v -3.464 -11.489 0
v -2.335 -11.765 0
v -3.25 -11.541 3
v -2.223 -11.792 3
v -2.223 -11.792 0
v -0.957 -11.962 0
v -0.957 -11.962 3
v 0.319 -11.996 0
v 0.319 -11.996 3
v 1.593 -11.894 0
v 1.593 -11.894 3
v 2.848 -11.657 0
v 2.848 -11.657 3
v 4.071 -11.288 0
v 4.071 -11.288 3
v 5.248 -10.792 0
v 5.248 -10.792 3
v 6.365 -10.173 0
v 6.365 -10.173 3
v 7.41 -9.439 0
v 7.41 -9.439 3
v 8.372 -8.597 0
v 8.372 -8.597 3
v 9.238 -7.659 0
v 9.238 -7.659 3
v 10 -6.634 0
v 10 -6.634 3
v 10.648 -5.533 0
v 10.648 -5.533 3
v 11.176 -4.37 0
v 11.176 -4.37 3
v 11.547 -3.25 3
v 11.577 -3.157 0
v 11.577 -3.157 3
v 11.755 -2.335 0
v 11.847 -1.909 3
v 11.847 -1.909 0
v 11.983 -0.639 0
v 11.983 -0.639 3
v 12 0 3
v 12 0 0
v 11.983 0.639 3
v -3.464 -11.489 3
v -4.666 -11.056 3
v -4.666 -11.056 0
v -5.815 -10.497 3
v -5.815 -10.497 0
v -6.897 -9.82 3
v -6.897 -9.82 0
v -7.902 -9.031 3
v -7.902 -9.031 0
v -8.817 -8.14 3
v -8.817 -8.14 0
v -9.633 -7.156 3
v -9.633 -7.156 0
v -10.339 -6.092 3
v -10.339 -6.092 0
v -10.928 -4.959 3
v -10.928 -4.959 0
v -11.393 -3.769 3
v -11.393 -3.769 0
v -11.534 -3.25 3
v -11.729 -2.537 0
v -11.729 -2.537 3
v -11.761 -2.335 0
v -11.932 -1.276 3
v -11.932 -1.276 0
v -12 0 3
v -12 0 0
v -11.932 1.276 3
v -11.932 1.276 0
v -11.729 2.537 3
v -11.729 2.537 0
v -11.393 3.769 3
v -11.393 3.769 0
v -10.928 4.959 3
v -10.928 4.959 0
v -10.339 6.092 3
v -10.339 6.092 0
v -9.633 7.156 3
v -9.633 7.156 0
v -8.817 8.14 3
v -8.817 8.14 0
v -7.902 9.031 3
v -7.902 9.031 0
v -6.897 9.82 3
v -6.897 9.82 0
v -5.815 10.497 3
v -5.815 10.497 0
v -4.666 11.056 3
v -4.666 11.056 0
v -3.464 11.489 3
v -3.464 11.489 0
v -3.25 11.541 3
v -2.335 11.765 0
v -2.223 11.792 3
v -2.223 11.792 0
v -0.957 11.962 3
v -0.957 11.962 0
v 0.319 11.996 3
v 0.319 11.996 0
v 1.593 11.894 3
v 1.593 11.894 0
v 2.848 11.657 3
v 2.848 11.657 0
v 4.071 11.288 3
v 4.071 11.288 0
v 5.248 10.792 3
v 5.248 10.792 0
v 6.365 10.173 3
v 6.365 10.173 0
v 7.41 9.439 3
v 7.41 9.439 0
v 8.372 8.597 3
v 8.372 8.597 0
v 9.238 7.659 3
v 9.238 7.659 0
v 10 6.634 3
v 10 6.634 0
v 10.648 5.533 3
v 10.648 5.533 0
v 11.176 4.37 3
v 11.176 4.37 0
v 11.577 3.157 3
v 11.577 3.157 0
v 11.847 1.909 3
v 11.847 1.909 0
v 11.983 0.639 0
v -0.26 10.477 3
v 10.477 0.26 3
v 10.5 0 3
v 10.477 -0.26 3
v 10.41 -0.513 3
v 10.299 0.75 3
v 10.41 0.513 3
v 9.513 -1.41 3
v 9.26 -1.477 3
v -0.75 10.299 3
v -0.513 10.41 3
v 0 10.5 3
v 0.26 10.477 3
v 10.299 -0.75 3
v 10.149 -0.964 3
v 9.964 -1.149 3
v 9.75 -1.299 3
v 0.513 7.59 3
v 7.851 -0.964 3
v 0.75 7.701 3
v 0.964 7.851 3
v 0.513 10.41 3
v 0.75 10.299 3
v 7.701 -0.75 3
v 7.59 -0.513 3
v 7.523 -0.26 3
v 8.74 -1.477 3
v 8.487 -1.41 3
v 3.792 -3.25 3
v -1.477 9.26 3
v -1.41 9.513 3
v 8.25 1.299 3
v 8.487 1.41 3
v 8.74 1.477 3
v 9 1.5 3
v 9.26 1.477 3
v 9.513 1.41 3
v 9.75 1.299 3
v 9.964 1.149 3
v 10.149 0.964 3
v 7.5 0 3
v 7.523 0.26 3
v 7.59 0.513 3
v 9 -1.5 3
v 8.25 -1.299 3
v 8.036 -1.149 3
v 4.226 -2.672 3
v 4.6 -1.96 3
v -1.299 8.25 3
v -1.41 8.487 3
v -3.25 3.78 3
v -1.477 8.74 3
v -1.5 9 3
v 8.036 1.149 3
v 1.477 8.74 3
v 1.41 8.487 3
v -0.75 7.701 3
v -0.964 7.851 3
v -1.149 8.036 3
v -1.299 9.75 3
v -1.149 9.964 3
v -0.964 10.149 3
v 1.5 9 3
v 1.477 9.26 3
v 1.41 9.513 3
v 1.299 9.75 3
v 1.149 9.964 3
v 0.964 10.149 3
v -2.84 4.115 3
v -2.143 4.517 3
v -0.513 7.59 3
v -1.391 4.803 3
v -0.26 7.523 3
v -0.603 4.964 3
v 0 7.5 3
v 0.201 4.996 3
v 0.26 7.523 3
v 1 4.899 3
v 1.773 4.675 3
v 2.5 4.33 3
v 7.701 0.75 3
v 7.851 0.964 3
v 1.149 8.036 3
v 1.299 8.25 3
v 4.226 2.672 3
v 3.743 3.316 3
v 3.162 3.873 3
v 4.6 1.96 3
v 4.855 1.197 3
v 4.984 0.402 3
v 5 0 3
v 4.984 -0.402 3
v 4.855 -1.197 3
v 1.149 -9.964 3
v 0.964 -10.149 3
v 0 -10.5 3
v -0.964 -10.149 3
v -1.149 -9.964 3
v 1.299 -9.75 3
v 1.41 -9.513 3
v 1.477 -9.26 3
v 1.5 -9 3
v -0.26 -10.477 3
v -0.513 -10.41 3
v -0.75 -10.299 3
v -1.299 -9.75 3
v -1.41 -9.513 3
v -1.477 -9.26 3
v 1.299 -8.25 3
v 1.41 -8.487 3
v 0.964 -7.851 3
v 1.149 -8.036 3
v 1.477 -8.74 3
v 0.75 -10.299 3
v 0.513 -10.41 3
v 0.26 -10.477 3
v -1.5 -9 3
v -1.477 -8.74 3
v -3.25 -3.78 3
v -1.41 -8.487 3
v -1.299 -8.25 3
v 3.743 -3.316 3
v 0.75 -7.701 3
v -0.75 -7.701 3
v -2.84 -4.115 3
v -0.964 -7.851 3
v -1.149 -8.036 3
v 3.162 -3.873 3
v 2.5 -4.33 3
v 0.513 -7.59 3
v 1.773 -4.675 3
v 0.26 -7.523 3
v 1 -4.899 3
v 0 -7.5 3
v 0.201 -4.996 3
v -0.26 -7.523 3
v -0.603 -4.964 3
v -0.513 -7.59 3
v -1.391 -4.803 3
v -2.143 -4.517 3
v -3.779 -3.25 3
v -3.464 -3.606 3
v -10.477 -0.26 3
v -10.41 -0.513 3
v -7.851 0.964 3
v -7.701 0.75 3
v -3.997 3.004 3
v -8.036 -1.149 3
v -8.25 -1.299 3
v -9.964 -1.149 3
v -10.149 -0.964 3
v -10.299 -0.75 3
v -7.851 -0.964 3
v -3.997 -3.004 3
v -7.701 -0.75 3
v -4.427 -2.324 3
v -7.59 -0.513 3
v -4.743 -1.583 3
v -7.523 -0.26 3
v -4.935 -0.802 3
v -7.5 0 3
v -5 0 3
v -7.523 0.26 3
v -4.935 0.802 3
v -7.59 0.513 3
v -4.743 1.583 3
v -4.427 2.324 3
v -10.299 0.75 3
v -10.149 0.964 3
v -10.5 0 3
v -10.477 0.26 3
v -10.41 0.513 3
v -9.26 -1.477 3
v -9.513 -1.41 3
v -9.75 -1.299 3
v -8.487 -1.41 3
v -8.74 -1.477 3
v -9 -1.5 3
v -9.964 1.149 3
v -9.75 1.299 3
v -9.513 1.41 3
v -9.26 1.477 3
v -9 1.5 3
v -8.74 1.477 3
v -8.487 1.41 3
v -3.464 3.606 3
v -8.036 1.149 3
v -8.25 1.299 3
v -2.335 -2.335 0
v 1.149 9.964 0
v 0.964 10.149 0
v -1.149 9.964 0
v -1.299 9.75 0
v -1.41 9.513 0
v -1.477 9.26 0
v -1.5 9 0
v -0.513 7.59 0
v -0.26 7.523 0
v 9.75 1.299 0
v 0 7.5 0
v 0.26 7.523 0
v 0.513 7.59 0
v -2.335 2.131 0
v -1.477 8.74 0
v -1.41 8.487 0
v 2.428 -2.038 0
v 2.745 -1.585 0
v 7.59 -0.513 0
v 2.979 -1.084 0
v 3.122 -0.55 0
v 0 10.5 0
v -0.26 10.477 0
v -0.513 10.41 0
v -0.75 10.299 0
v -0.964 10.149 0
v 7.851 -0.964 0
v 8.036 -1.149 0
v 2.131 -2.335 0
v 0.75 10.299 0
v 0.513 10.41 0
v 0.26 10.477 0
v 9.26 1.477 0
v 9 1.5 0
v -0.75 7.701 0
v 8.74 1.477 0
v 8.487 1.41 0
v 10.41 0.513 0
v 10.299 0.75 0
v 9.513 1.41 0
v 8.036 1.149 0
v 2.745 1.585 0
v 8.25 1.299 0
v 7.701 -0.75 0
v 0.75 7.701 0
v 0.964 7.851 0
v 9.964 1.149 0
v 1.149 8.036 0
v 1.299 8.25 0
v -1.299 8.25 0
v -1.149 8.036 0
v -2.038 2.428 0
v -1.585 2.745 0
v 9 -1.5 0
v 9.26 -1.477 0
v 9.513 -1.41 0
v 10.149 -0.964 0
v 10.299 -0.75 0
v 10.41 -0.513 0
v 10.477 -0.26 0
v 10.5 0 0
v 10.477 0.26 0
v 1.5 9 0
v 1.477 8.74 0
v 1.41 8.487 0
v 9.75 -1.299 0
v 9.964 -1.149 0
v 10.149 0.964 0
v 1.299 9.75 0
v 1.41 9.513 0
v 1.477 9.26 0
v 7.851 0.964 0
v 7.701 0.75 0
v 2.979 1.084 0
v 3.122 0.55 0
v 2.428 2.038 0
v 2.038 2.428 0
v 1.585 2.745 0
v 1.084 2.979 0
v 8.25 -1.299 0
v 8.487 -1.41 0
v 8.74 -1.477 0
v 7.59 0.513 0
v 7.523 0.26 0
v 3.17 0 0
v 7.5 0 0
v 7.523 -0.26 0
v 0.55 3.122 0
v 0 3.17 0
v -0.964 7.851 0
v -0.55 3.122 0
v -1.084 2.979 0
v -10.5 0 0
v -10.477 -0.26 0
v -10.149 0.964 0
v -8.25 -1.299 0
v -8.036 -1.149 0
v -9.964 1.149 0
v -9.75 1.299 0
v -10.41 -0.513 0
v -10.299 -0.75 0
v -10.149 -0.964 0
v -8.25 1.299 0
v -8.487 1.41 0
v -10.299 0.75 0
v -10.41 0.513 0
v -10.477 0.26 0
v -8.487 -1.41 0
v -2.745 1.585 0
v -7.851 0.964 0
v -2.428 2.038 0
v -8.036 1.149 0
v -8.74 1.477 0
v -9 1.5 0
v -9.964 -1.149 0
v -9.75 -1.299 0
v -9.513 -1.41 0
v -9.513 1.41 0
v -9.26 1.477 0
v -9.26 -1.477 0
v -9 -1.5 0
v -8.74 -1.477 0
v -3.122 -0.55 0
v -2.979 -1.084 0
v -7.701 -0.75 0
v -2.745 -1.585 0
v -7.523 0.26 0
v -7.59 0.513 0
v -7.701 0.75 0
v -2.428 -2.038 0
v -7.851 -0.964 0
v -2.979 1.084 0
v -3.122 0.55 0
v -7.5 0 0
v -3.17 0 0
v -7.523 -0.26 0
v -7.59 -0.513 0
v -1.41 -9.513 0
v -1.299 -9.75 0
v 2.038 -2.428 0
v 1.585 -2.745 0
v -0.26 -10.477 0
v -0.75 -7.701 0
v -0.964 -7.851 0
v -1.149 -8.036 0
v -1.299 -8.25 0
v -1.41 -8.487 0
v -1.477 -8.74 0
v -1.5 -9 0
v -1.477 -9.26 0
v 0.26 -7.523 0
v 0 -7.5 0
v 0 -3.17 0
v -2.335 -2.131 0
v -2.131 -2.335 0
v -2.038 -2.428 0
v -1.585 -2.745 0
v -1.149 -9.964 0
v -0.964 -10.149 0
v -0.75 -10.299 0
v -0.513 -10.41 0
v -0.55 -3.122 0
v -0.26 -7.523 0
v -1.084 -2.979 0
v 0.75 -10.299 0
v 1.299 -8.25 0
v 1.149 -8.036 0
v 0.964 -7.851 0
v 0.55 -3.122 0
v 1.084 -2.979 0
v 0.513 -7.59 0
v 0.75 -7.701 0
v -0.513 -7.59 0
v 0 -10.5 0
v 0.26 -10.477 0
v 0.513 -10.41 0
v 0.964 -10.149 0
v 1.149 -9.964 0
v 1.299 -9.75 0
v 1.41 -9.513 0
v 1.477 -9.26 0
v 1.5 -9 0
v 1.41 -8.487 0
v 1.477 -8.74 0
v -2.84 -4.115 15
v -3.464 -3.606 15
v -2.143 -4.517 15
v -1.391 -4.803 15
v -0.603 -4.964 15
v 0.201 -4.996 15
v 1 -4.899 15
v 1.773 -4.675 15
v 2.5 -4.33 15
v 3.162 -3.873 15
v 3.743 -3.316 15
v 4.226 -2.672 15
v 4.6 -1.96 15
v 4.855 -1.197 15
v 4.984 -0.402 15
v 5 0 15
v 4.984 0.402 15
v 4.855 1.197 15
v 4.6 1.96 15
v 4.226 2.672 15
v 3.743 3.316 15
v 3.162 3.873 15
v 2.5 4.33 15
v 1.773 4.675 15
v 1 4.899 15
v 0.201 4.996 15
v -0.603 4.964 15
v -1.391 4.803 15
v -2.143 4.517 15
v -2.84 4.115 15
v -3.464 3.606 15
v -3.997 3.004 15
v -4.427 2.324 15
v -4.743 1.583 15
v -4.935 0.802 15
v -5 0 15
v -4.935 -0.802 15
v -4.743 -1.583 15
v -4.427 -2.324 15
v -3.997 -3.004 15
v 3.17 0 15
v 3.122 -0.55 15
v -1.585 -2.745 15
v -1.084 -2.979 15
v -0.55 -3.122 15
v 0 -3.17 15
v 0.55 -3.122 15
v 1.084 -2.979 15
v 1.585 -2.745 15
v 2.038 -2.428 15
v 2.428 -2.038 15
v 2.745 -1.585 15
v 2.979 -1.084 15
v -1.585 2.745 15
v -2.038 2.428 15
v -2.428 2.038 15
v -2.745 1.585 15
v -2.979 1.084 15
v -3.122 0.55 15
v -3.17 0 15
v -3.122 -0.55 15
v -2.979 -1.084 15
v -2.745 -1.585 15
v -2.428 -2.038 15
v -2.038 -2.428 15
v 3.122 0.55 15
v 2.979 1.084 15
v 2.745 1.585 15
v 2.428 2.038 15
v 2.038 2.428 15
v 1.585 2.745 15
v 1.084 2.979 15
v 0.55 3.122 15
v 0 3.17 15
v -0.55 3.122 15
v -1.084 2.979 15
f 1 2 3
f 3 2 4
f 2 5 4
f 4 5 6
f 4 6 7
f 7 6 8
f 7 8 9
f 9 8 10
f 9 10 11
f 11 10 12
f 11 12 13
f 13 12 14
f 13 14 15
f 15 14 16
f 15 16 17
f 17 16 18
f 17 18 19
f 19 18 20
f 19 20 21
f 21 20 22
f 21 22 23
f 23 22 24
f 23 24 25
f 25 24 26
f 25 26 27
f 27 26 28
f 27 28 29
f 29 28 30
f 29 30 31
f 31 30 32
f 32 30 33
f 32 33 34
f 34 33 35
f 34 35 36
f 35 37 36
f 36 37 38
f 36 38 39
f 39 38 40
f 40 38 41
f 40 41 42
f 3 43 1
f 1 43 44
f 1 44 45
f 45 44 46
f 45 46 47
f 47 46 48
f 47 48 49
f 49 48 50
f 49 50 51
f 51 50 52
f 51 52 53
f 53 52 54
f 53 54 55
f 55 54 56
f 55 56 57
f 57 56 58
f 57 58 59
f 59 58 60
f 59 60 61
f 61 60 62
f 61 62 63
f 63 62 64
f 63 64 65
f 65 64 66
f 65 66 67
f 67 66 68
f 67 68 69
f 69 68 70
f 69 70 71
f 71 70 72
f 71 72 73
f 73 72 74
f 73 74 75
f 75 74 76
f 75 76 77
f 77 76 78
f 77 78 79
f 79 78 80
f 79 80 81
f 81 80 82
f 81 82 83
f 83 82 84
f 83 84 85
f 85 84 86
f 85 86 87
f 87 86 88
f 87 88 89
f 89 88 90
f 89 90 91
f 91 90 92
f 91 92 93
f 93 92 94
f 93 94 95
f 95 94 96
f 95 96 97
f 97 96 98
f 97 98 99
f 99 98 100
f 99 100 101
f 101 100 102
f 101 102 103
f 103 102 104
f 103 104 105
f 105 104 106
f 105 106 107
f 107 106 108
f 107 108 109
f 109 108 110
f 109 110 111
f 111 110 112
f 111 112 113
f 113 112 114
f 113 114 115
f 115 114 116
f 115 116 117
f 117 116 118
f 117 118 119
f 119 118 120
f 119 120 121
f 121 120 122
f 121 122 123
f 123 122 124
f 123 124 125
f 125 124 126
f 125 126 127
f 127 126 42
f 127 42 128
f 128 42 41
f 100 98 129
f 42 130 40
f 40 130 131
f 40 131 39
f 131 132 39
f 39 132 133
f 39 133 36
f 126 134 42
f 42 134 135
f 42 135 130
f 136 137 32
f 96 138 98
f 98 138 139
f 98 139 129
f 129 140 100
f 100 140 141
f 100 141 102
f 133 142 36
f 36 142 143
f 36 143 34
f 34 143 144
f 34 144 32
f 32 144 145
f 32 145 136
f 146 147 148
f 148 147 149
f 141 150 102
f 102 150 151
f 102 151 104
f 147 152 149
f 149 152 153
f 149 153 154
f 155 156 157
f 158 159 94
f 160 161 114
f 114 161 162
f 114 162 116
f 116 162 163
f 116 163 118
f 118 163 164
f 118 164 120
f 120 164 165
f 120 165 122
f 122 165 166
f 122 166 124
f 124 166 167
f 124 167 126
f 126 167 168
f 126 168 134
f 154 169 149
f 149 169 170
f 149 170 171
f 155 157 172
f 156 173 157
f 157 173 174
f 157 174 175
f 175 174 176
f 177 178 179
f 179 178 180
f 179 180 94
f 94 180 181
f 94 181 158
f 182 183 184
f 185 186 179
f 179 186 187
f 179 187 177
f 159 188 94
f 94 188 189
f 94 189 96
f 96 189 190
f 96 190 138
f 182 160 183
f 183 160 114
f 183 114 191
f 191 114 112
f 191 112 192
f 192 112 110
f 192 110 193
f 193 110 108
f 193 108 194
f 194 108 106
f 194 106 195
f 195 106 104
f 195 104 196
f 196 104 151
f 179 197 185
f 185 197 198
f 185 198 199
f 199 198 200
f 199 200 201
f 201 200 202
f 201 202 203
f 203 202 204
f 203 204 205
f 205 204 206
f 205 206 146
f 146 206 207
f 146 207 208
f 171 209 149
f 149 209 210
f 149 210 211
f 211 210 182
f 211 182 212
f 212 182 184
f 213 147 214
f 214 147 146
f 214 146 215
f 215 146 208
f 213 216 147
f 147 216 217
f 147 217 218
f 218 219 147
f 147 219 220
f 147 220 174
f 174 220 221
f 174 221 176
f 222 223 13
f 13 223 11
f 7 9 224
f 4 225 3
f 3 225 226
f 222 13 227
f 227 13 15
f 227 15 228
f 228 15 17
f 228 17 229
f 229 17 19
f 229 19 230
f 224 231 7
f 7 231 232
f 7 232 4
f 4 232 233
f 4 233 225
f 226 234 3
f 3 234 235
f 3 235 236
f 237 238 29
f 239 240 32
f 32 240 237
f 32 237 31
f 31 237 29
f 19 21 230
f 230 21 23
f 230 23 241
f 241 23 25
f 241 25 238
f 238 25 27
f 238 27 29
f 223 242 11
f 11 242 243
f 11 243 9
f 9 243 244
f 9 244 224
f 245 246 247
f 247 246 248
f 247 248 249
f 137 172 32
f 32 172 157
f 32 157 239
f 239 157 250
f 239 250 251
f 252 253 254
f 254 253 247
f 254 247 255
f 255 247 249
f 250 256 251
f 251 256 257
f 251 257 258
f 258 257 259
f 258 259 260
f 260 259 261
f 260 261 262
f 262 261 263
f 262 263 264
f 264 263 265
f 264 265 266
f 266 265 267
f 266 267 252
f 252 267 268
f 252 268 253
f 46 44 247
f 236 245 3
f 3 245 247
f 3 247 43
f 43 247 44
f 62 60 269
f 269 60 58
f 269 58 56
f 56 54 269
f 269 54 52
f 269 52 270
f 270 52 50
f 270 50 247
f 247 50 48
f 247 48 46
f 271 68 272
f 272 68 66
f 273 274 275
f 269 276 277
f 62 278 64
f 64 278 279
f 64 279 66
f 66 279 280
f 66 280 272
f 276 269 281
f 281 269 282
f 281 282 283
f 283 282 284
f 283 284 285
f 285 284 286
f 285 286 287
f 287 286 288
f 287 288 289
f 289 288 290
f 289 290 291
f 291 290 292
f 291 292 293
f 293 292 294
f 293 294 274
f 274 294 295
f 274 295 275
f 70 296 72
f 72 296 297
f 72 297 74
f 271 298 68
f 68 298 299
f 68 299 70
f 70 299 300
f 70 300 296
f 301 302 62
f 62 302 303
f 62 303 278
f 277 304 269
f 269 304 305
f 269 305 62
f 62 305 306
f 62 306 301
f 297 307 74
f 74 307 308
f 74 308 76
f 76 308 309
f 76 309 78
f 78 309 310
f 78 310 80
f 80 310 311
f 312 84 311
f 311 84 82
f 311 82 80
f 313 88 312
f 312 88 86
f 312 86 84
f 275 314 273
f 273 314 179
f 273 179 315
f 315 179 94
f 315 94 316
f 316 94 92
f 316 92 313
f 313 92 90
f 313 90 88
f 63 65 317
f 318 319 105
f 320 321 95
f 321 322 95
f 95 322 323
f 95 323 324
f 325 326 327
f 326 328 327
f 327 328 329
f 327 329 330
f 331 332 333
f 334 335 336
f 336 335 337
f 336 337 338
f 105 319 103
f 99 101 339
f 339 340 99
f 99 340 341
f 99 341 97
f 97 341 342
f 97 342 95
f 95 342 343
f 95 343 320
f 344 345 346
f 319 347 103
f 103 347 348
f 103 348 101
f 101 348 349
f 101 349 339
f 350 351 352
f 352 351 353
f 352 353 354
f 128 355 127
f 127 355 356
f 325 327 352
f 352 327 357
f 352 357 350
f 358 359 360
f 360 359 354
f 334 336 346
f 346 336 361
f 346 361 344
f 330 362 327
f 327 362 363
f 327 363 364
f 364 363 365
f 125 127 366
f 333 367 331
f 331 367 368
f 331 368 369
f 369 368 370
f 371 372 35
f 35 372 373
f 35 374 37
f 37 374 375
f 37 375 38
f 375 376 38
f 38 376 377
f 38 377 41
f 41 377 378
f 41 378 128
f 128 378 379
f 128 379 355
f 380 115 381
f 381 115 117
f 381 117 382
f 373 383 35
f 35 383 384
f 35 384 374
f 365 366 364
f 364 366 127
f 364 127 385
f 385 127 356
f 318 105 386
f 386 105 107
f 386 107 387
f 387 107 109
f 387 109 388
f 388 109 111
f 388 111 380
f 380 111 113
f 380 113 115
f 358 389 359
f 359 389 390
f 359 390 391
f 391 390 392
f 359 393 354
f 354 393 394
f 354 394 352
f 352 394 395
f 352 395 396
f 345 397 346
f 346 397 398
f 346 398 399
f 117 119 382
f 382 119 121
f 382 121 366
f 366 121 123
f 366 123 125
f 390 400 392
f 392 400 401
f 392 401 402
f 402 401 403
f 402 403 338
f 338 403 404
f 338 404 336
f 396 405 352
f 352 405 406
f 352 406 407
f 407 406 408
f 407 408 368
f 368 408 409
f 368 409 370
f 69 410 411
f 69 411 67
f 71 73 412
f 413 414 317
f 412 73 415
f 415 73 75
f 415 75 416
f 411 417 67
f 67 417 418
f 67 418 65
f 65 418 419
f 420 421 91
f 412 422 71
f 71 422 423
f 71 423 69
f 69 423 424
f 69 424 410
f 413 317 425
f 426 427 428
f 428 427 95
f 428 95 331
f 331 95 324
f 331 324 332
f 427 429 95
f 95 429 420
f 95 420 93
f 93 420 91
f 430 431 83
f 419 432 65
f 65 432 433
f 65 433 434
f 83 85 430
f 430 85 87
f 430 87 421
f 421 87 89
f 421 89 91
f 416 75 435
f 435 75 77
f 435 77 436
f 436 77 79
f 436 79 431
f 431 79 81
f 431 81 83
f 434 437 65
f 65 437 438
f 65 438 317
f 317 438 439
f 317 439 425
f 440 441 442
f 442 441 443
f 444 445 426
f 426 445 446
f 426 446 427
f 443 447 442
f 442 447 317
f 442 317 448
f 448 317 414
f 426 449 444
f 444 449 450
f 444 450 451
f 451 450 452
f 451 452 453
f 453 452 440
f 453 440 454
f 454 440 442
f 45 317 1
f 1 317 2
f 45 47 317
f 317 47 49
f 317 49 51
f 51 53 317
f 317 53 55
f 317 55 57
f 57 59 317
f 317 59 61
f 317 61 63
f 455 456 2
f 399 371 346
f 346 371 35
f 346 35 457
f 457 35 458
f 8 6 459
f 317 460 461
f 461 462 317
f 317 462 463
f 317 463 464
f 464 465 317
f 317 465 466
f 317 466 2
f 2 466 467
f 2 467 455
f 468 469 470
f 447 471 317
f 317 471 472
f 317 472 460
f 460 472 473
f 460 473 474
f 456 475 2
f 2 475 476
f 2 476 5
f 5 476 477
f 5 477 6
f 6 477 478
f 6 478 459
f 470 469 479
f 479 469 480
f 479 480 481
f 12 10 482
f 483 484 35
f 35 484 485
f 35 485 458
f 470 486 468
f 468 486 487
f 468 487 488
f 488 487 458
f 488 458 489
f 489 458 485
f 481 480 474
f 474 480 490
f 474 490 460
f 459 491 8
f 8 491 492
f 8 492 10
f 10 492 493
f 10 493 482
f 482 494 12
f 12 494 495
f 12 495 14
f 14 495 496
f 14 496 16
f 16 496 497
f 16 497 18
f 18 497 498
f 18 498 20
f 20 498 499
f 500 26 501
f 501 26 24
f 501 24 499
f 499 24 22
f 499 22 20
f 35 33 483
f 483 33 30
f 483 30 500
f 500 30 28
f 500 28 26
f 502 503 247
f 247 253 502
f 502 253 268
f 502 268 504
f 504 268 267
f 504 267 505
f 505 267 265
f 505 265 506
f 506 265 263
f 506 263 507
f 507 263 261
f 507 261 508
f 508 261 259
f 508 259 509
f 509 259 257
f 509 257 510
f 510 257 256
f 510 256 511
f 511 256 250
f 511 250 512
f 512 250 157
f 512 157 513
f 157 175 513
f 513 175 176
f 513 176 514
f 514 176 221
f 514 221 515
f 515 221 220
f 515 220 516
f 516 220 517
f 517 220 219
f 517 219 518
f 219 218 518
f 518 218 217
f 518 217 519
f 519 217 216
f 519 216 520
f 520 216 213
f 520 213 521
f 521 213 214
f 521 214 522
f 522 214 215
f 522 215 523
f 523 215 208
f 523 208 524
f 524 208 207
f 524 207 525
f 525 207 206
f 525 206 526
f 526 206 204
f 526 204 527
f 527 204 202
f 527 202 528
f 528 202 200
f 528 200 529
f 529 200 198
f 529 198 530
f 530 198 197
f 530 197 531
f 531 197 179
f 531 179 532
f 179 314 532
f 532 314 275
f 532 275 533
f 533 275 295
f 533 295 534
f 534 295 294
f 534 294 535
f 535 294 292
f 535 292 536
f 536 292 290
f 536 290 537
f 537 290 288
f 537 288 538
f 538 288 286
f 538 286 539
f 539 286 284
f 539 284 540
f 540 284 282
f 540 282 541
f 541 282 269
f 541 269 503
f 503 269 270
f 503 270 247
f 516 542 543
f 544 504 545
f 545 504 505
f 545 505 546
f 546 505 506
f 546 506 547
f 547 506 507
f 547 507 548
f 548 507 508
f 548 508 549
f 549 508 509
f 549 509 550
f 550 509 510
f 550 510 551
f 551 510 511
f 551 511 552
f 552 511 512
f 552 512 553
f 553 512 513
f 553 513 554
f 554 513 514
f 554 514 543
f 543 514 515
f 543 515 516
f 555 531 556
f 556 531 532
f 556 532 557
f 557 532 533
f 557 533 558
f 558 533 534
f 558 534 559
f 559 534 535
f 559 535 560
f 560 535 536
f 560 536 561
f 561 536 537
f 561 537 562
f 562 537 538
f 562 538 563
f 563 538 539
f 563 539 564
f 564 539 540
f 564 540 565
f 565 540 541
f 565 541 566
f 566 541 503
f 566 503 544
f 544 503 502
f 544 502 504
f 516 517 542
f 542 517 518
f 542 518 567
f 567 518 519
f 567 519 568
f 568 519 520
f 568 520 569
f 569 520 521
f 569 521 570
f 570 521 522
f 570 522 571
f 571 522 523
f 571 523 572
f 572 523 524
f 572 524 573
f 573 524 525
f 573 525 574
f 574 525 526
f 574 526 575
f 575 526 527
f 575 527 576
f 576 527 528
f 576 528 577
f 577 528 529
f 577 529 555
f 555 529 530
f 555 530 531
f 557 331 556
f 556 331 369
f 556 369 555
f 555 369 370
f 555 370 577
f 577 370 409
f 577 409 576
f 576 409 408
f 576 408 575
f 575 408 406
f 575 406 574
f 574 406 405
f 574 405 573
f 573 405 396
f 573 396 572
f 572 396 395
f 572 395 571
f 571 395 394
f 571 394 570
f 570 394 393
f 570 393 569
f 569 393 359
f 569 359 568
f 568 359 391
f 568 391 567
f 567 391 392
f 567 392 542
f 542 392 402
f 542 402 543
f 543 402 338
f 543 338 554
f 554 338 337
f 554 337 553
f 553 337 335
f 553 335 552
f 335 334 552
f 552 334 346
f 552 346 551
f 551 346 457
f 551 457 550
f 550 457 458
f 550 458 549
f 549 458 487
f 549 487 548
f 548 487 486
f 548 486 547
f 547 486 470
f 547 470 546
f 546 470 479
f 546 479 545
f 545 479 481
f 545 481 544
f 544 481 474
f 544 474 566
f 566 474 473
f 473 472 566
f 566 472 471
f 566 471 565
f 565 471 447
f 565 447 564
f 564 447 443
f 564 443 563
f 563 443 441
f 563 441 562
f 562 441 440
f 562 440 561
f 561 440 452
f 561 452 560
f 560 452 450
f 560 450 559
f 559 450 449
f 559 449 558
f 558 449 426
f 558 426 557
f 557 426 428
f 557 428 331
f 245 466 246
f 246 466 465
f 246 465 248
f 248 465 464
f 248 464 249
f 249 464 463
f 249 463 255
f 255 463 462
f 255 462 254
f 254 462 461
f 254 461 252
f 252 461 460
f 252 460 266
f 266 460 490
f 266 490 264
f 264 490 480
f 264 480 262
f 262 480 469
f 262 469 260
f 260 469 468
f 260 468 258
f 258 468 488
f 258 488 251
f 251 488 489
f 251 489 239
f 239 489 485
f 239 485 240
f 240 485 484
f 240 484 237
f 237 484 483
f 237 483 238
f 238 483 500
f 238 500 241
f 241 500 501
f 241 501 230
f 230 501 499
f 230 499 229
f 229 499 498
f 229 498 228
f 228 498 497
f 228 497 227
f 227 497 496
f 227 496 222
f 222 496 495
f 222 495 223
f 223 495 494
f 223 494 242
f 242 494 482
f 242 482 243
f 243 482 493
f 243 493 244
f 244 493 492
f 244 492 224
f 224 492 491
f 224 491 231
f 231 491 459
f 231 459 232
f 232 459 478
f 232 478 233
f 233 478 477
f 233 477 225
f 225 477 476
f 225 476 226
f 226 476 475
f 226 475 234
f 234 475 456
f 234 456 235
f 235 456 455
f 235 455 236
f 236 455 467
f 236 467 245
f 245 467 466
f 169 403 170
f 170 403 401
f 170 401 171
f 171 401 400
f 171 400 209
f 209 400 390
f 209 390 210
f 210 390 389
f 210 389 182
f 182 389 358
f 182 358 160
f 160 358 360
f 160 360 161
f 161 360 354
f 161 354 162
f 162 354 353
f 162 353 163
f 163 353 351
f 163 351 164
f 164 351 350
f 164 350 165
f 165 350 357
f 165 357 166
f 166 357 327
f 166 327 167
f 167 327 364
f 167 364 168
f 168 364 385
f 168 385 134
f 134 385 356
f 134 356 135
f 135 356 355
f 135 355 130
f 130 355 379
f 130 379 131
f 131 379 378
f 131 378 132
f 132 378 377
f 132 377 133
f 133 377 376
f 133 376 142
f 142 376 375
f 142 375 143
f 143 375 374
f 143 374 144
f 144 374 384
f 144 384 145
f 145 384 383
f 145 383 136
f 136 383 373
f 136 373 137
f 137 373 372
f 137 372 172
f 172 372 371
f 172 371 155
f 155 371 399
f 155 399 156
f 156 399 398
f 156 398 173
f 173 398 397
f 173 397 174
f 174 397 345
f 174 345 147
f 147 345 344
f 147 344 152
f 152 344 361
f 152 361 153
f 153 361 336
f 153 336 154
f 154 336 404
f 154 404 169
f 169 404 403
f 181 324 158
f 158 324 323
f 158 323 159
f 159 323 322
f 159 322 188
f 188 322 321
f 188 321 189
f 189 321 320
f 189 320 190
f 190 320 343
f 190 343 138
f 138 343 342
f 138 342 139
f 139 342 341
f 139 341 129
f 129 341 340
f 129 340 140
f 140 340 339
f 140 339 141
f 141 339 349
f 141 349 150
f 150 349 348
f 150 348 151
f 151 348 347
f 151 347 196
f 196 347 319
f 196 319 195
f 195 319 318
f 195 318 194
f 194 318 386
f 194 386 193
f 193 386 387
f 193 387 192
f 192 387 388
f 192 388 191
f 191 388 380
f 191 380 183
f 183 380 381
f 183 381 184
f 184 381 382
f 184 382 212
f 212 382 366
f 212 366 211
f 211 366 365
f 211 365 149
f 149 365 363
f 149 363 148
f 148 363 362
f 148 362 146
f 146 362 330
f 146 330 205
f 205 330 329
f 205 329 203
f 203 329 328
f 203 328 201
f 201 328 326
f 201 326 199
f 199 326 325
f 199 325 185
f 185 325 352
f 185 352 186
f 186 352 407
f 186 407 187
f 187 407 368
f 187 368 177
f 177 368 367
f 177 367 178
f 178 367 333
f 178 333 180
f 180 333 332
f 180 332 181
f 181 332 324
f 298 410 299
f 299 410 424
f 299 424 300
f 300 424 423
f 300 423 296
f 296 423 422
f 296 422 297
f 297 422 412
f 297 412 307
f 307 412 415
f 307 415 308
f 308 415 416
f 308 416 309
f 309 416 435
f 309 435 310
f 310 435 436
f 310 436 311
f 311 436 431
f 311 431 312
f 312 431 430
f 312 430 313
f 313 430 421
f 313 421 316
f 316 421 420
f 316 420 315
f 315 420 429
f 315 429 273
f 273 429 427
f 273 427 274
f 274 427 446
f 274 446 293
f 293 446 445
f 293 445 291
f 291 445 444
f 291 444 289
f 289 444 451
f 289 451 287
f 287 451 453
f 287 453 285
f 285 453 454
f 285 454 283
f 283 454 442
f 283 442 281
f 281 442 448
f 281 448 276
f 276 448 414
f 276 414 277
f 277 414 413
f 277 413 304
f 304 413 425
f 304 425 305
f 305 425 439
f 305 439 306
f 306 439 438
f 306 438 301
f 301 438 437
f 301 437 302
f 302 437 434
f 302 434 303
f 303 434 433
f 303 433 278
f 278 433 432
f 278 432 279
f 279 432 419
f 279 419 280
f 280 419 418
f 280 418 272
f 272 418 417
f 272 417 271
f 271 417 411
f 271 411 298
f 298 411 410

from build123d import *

# Parameters (mm, degrees)
SKETCH1_R           = 12
BOSS_EXTRUDE1_DEPTH = 3
SKETCH2_R           = 5
BOSS_EXTRUDE2_DEPTH = 15
SKETCH3_R           = 3.17
CUT_EXTRUDE1_DEPTH  = 15
SKETCH4_R           = 1.5
CUT_EXTRUDE2_DEPTH  = 5


with BuildPart() as part:
    # Sketch1 → Boss-Extrude1 (new body)
    with BuildSketch(Plane.XY):
        Circle(SKETCH1_R)
    extrude(amount=BOSS_EXTRUDE1_DEPTH)

    # Sketch2 → Boss-Extrude2 (add)
    with BuildSketch(Plane.XY):
        Circle(SKETCH2_R)
    extrude(amount=BOSS_EXTRUDE2_DEPTH)

    # Sketch3 → Cut-Extrude1 (cut)
    with BuildSketch(Plane.XY):
        Circle(SKETCH3_R)
    extrude(amount=CUT_EXTRUDE1_DEPTH, mode=Mode.SUBTRACT)

    # Sketch4 → Cut-Extrude2 (cut)
    with BuildSketch(Plane.XY):
        with Locations((-9, 0)):
            Circle(SKETCH4_R)
        with Locations((0, 9)):
            Circle(SKETCH4_R)
        with Locations((9, 0)):
            Circle(SKETCH4_R)
        with Locations((0, -9)):
            Circle(SKETCH4_R)
    extrude(amount=CUT_EXTRUDE2_DEPTH, mode=Mode.SUBTRACT)


solid = part.part
